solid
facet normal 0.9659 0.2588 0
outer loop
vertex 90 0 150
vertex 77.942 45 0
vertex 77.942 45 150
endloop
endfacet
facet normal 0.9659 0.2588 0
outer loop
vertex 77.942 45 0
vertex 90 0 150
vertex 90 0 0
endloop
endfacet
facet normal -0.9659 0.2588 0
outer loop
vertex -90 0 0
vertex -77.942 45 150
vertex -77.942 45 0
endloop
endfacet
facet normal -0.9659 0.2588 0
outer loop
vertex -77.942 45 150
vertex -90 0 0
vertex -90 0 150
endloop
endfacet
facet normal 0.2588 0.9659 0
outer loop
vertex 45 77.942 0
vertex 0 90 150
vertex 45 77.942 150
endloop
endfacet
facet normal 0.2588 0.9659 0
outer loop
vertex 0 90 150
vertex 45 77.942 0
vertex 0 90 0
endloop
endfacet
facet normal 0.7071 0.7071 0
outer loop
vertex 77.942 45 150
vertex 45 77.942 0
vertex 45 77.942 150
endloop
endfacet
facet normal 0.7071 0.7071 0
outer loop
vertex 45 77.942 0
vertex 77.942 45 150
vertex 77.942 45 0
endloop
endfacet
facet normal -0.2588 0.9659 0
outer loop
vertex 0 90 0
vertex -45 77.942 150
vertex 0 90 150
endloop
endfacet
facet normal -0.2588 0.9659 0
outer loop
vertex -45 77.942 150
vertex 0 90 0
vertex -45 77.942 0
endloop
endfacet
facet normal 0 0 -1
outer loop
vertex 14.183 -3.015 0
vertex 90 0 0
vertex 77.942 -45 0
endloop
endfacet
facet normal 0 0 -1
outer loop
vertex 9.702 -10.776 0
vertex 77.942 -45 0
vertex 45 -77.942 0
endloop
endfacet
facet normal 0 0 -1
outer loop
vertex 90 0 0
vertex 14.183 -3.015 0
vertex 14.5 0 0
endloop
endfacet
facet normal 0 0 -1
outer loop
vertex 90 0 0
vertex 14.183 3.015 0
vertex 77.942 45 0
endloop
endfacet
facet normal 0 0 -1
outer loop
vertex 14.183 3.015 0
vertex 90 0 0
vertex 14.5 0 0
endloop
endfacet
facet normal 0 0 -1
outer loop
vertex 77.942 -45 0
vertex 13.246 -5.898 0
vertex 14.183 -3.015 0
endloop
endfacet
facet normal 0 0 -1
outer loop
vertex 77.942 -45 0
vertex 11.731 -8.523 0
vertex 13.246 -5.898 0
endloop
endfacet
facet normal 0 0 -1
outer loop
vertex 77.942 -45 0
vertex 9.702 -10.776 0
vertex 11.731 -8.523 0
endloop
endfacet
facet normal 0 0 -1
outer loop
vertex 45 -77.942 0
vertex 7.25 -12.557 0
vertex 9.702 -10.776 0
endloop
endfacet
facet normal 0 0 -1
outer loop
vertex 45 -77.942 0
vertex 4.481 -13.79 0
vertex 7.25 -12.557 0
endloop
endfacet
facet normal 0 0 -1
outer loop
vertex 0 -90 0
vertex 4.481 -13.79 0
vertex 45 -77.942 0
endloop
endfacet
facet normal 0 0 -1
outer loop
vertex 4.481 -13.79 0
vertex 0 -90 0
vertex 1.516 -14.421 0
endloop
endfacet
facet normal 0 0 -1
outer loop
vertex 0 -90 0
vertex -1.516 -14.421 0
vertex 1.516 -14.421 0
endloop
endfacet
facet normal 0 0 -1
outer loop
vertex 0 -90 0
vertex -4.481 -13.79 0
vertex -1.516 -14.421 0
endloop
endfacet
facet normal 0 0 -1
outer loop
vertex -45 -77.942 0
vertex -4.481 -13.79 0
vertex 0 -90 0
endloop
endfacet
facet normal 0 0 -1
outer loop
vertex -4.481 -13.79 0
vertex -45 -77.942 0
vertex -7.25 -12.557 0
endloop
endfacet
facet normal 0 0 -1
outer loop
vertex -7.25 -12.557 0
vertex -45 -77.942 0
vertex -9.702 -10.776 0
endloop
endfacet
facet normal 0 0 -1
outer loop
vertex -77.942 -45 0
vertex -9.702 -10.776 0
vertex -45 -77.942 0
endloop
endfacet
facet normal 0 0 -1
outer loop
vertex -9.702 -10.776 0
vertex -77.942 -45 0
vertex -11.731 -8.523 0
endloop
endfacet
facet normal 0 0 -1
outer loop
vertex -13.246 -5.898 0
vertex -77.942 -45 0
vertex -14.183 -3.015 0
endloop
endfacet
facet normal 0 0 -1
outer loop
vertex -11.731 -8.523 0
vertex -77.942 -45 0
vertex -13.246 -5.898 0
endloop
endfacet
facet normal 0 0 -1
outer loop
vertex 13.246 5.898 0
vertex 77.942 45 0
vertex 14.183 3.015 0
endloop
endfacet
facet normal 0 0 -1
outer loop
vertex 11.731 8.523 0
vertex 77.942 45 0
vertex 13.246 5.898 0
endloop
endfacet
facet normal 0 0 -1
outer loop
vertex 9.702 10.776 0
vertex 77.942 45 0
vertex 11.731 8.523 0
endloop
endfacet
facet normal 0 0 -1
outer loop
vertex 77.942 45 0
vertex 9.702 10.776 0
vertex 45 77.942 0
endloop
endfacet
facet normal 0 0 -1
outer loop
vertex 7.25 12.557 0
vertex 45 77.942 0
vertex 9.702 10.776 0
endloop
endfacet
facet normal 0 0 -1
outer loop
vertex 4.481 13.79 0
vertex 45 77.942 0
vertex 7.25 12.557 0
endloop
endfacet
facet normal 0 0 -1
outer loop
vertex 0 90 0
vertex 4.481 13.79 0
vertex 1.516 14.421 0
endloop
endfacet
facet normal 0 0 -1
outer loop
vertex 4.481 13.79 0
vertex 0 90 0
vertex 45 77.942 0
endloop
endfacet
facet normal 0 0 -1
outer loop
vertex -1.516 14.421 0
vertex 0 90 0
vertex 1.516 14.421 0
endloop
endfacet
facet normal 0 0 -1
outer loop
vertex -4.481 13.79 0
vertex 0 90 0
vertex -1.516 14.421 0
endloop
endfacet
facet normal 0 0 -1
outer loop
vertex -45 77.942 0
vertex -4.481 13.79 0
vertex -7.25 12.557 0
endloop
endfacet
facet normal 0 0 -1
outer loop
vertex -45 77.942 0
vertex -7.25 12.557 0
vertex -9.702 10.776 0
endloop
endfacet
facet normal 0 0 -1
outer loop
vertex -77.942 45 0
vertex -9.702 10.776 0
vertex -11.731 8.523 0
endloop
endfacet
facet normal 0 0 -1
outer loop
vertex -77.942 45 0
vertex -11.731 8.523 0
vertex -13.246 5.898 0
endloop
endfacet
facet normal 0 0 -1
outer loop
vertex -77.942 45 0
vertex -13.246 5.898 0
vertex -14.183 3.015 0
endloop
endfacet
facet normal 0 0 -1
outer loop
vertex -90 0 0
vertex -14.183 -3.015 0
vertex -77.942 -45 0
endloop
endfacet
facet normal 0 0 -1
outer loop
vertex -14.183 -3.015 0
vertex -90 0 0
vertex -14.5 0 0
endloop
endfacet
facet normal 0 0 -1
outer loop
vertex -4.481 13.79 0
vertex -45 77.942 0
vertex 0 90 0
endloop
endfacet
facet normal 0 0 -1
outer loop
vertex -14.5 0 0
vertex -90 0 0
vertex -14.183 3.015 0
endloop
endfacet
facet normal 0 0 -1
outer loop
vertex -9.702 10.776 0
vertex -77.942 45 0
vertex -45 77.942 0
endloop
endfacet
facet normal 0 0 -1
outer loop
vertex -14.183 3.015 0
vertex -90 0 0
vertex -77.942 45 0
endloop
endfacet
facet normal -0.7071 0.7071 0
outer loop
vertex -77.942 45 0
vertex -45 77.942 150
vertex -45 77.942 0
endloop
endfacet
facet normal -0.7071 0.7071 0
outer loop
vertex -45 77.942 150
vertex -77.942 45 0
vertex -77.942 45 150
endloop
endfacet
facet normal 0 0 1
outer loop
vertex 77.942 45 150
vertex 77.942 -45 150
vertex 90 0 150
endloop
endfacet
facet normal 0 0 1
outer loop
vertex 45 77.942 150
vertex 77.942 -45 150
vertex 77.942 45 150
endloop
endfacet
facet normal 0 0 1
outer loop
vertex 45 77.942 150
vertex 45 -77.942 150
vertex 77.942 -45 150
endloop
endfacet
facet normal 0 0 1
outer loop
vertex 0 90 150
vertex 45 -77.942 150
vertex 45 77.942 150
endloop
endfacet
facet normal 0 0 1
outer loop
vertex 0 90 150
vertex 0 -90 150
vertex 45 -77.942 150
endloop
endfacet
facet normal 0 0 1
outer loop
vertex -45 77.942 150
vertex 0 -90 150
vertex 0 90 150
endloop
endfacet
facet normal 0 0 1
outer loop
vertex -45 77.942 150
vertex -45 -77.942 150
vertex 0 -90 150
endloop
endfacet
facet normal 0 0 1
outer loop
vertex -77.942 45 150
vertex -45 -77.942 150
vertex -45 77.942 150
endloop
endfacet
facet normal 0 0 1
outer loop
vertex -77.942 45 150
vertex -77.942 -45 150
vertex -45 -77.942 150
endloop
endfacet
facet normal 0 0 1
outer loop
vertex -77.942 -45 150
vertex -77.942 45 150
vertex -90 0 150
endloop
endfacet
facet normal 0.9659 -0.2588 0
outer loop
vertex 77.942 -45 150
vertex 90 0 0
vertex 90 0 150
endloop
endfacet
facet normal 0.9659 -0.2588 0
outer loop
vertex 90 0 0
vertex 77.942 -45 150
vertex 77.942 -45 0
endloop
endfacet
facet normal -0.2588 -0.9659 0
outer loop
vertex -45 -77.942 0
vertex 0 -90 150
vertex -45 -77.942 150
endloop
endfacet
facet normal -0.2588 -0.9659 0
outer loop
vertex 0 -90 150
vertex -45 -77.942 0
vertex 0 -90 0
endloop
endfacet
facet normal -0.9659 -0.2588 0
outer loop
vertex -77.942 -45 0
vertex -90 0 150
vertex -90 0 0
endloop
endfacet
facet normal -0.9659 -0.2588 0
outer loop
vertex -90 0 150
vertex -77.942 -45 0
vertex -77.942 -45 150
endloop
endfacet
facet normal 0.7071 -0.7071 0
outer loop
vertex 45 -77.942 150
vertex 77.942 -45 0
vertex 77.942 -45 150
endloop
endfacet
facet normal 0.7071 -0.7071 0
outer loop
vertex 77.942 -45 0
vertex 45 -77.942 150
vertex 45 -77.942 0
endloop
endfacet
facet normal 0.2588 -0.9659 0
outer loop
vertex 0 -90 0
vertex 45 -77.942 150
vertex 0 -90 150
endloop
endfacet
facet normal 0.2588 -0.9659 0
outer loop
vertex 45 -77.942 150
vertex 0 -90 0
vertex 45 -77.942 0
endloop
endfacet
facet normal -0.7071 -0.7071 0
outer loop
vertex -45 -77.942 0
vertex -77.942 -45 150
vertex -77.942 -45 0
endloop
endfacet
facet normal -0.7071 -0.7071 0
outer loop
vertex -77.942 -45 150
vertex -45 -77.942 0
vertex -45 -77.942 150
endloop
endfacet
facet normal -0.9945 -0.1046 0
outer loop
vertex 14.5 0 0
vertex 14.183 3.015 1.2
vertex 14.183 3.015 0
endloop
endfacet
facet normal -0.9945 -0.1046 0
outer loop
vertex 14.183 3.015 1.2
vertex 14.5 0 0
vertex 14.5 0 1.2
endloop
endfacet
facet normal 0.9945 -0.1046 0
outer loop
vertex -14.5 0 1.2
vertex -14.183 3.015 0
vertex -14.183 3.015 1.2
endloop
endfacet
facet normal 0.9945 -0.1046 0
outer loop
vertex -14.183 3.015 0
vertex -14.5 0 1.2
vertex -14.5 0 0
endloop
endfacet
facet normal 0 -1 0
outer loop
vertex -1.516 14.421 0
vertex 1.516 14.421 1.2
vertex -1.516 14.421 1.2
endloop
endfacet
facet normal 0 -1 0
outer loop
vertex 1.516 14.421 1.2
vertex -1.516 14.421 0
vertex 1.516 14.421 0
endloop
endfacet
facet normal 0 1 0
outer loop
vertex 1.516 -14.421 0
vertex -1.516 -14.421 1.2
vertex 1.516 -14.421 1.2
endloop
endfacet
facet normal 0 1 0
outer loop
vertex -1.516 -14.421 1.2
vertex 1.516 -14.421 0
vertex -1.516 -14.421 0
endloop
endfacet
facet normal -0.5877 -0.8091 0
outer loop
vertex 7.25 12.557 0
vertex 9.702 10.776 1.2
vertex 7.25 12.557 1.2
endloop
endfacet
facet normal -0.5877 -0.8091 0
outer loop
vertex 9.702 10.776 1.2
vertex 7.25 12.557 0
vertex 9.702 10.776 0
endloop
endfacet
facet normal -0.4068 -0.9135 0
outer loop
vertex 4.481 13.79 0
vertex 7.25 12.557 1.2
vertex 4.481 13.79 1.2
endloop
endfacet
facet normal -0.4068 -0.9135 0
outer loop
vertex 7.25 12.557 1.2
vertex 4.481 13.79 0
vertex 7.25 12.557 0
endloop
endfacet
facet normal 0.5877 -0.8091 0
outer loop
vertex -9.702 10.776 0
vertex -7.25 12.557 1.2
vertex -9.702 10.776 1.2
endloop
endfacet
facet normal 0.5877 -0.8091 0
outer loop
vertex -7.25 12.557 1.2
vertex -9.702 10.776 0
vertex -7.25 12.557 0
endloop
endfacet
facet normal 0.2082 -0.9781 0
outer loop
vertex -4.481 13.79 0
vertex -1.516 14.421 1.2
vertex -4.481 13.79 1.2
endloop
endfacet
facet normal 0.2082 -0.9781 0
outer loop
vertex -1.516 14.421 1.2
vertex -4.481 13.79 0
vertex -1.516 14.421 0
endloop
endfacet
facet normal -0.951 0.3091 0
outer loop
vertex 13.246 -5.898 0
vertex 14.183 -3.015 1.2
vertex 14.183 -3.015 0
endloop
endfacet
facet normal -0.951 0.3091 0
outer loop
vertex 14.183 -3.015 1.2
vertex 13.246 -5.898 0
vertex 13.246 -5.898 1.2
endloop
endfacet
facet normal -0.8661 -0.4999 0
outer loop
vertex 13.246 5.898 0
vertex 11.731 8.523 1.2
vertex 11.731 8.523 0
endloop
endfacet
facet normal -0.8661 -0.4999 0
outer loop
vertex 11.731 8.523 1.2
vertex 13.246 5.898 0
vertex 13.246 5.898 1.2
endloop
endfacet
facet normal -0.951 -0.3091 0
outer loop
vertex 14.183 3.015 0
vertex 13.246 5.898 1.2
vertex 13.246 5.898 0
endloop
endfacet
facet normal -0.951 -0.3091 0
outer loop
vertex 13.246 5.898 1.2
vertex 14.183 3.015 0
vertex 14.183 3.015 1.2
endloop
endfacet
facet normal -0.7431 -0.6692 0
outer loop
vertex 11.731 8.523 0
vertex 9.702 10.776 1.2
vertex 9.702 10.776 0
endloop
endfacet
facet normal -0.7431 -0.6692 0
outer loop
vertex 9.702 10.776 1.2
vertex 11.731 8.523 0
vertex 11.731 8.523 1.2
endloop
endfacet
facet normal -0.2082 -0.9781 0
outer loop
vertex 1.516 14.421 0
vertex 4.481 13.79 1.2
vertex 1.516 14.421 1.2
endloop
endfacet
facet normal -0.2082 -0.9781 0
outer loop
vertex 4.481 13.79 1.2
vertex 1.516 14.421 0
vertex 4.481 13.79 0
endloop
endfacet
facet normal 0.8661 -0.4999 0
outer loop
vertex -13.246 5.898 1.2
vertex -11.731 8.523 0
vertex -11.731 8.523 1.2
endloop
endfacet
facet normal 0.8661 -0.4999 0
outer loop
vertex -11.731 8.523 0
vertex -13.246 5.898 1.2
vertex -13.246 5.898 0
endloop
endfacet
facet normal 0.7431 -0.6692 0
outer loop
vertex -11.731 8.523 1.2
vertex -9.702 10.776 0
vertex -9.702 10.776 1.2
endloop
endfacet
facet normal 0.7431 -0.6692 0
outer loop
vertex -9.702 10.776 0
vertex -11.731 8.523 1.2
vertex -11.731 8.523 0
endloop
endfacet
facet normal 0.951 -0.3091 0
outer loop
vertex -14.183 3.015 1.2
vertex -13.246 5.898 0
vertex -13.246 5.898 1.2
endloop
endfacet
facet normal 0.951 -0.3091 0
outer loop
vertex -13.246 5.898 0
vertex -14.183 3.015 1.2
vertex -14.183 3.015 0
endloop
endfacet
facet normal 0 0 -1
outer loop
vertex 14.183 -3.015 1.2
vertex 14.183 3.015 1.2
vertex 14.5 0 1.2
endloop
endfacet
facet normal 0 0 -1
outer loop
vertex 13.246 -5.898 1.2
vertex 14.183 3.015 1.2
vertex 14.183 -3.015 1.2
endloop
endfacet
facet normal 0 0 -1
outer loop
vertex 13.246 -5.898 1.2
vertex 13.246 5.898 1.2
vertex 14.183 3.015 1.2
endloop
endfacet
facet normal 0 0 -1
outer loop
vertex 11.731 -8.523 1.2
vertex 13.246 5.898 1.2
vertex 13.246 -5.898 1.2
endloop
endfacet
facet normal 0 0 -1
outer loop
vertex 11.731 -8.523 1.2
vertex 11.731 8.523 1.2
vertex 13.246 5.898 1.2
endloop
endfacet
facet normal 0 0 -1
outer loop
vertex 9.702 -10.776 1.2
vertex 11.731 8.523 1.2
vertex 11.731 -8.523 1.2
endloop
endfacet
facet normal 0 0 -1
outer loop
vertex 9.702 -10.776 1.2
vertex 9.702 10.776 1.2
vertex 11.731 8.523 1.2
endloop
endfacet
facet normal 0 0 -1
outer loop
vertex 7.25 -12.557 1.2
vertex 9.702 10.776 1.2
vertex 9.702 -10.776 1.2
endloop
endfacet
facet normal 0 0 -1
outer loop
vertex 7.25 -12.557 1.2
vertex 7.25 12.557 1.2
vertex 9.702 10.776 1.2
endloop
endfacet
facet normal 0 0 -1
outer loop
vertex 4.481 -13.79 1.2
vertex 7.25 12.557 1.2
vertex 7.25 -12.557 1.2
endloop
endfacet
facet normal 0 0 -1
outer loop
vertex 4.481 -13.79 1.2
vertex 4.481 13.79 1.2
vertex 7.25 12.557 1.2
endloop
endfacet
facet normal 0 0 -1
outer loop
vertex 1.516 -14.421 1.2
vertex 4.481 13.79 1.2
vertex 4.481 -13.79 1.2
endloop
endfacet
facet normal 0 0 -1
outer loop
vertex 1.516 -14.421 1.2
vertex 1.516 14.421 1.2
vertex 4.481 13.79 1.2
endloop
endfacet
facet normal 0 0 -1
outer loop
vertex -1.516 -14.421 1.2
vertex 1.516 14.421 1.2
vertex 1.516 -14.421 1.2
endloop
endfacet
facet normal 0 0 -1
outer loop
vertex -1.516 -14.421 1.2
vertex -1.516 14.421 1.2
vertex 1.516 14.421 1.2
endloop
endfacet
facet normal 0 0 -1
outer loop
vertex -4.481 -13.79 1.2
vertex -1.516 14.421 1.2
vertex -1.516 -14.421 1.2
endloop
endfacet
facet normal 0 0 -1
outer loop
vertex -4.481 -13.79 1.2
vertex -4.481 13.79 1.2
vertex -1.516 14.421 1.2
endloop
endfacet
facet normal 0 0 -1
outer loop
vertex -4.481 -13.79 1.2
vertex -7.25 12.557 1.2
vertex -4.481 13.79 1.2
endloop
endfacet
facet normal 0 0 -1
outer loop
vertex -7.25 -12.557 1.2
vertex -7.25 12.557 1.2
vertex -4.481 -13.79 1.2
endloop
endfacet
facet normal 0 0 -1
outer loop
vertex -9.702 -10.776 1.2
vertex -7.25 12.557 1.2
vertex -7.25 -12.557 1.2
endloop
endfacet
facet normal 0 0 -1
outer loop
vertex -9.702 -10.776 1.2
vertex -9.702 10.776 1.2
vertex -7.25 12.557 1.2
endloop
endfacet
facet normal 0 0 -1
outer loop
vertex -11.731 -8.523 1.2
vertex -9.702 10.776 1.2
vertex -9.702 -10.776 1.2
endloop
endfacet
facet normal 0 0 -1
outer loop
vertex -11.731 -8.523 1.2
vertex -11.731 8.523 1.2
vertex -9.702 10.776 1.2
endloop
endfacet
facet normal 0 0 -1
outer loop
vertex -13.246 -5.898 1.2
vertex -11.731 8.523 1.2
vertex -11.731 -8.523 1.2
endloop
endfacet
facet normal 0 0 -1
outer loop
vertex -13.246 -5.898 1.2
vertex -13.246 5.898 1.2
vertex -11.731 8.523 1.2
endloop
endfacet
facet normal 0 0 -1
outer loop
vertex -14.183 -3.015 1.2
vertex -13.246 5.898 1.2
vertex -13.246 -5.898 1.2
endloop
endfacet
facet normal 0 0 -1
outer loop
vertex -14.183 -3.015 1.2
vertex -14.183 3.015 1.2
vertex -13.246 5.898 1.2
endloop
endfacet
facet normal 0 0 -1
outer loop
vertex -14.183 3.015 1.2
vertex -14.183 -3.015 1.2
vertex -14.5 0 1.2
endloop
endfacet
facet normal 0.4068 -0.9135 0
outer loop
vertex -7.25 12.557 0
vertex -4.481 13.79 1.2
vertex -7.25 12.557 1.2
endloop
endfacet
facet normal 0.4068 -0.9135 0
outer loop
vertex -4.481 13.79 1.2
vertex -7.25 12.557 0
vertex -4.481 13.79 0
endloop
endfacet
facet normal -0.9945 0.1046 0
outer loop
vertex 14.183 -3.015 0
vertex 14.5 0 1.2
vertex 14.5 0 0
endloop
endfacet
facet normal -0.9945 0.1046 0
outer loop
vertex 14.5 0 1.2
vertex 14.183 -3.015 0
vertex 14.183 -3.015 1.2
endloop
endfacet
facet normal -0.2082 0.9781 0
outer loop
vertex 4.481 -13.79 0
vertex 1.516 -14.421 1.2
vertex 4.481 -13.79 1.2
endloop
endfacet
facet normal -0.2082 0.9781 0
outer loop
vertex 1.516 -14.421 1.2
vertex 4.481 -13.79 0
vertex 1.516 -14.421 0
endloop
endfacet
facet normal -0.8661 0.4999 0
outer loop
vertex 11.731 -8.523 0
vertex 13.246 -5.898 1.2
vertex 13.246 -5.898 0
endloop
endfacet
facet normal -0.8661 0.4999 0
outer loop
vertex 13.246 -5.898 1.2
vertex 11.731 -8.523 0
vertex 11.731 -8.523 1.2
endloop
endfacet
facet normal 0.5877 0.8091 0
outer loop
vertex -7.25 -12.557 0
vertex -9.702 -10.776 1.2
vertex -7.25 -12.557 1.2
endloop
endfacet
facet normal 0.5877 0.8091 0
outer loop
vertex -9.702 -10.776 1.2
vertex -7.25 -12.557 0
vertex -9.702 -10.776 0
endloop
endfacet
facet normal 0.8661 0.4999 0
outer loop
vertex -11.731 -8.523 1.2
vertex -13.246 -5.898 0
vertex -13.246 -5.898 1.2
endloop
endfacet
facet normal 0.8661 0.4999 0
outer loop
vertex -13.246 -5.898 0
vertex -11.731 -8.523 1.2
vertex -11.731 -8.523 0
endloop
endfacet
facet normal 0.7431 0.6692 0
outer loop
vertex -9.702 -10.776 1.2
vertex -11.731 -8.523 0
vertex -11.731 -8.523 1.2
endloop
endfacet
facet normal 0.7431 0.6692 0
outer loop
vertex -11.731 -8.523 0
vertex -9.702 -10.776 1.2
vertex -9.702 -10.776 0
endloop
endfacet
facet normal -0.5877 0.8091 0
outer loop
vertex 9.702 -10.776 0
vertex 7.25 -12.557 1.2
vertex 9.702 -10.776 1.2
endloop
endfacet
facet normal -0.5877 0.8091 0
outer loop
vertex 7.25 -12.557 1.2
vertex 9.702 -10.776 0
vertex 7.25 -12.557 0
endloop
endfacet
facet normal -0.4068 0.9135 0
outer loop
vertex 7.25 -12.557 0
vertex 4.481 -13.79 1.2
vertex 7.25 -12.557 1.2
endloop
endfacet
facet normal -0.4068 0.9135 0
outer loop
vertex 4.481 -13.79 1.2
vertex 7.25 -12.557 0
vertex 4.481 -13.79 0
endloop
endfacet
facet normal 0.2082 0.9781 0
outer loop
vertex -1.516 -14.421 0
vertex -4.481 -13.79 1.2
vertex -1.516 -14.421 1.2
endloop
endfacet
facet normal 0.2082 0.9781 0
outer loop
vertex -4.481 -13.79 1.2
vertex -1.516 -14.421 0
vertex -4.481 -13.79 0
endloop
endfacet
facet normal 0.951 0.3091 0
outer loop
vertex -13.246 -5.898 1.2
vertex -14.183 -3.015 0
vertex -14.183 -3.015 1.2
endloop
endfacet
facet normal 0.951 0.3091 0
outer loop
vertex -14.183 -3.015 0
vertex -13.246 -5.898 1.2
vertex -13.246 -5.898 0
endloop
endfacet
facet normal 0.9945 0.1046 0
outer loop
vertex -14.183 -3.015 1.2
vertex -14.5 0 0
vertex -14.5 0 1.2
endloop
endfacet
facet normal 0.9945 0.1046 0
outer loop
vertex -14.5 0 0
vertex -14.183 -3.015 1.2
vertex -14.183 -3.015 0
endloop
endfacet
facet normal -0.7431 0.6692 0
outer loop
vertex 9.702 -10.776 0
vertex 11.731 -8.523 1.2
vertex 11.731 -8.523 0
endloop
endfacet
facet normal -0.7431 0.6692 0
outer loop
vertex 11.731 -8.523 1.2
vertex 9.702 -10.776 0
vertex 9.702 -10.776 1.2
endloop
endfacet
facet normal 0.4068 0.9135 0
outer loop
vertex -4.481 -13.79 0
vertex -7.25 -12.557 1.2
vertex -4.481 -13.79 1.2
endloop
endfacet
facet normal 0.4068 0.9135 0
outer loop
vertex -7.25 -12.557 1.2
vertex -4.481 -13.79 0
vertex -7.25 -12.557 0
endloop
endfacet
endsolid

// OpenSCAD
difference() {
	cylinder(r=180/2, h =150, $fn=12);
translate([0,0,-0.5]) cylinder(r=29/2, h=0.5+1.2);
}
